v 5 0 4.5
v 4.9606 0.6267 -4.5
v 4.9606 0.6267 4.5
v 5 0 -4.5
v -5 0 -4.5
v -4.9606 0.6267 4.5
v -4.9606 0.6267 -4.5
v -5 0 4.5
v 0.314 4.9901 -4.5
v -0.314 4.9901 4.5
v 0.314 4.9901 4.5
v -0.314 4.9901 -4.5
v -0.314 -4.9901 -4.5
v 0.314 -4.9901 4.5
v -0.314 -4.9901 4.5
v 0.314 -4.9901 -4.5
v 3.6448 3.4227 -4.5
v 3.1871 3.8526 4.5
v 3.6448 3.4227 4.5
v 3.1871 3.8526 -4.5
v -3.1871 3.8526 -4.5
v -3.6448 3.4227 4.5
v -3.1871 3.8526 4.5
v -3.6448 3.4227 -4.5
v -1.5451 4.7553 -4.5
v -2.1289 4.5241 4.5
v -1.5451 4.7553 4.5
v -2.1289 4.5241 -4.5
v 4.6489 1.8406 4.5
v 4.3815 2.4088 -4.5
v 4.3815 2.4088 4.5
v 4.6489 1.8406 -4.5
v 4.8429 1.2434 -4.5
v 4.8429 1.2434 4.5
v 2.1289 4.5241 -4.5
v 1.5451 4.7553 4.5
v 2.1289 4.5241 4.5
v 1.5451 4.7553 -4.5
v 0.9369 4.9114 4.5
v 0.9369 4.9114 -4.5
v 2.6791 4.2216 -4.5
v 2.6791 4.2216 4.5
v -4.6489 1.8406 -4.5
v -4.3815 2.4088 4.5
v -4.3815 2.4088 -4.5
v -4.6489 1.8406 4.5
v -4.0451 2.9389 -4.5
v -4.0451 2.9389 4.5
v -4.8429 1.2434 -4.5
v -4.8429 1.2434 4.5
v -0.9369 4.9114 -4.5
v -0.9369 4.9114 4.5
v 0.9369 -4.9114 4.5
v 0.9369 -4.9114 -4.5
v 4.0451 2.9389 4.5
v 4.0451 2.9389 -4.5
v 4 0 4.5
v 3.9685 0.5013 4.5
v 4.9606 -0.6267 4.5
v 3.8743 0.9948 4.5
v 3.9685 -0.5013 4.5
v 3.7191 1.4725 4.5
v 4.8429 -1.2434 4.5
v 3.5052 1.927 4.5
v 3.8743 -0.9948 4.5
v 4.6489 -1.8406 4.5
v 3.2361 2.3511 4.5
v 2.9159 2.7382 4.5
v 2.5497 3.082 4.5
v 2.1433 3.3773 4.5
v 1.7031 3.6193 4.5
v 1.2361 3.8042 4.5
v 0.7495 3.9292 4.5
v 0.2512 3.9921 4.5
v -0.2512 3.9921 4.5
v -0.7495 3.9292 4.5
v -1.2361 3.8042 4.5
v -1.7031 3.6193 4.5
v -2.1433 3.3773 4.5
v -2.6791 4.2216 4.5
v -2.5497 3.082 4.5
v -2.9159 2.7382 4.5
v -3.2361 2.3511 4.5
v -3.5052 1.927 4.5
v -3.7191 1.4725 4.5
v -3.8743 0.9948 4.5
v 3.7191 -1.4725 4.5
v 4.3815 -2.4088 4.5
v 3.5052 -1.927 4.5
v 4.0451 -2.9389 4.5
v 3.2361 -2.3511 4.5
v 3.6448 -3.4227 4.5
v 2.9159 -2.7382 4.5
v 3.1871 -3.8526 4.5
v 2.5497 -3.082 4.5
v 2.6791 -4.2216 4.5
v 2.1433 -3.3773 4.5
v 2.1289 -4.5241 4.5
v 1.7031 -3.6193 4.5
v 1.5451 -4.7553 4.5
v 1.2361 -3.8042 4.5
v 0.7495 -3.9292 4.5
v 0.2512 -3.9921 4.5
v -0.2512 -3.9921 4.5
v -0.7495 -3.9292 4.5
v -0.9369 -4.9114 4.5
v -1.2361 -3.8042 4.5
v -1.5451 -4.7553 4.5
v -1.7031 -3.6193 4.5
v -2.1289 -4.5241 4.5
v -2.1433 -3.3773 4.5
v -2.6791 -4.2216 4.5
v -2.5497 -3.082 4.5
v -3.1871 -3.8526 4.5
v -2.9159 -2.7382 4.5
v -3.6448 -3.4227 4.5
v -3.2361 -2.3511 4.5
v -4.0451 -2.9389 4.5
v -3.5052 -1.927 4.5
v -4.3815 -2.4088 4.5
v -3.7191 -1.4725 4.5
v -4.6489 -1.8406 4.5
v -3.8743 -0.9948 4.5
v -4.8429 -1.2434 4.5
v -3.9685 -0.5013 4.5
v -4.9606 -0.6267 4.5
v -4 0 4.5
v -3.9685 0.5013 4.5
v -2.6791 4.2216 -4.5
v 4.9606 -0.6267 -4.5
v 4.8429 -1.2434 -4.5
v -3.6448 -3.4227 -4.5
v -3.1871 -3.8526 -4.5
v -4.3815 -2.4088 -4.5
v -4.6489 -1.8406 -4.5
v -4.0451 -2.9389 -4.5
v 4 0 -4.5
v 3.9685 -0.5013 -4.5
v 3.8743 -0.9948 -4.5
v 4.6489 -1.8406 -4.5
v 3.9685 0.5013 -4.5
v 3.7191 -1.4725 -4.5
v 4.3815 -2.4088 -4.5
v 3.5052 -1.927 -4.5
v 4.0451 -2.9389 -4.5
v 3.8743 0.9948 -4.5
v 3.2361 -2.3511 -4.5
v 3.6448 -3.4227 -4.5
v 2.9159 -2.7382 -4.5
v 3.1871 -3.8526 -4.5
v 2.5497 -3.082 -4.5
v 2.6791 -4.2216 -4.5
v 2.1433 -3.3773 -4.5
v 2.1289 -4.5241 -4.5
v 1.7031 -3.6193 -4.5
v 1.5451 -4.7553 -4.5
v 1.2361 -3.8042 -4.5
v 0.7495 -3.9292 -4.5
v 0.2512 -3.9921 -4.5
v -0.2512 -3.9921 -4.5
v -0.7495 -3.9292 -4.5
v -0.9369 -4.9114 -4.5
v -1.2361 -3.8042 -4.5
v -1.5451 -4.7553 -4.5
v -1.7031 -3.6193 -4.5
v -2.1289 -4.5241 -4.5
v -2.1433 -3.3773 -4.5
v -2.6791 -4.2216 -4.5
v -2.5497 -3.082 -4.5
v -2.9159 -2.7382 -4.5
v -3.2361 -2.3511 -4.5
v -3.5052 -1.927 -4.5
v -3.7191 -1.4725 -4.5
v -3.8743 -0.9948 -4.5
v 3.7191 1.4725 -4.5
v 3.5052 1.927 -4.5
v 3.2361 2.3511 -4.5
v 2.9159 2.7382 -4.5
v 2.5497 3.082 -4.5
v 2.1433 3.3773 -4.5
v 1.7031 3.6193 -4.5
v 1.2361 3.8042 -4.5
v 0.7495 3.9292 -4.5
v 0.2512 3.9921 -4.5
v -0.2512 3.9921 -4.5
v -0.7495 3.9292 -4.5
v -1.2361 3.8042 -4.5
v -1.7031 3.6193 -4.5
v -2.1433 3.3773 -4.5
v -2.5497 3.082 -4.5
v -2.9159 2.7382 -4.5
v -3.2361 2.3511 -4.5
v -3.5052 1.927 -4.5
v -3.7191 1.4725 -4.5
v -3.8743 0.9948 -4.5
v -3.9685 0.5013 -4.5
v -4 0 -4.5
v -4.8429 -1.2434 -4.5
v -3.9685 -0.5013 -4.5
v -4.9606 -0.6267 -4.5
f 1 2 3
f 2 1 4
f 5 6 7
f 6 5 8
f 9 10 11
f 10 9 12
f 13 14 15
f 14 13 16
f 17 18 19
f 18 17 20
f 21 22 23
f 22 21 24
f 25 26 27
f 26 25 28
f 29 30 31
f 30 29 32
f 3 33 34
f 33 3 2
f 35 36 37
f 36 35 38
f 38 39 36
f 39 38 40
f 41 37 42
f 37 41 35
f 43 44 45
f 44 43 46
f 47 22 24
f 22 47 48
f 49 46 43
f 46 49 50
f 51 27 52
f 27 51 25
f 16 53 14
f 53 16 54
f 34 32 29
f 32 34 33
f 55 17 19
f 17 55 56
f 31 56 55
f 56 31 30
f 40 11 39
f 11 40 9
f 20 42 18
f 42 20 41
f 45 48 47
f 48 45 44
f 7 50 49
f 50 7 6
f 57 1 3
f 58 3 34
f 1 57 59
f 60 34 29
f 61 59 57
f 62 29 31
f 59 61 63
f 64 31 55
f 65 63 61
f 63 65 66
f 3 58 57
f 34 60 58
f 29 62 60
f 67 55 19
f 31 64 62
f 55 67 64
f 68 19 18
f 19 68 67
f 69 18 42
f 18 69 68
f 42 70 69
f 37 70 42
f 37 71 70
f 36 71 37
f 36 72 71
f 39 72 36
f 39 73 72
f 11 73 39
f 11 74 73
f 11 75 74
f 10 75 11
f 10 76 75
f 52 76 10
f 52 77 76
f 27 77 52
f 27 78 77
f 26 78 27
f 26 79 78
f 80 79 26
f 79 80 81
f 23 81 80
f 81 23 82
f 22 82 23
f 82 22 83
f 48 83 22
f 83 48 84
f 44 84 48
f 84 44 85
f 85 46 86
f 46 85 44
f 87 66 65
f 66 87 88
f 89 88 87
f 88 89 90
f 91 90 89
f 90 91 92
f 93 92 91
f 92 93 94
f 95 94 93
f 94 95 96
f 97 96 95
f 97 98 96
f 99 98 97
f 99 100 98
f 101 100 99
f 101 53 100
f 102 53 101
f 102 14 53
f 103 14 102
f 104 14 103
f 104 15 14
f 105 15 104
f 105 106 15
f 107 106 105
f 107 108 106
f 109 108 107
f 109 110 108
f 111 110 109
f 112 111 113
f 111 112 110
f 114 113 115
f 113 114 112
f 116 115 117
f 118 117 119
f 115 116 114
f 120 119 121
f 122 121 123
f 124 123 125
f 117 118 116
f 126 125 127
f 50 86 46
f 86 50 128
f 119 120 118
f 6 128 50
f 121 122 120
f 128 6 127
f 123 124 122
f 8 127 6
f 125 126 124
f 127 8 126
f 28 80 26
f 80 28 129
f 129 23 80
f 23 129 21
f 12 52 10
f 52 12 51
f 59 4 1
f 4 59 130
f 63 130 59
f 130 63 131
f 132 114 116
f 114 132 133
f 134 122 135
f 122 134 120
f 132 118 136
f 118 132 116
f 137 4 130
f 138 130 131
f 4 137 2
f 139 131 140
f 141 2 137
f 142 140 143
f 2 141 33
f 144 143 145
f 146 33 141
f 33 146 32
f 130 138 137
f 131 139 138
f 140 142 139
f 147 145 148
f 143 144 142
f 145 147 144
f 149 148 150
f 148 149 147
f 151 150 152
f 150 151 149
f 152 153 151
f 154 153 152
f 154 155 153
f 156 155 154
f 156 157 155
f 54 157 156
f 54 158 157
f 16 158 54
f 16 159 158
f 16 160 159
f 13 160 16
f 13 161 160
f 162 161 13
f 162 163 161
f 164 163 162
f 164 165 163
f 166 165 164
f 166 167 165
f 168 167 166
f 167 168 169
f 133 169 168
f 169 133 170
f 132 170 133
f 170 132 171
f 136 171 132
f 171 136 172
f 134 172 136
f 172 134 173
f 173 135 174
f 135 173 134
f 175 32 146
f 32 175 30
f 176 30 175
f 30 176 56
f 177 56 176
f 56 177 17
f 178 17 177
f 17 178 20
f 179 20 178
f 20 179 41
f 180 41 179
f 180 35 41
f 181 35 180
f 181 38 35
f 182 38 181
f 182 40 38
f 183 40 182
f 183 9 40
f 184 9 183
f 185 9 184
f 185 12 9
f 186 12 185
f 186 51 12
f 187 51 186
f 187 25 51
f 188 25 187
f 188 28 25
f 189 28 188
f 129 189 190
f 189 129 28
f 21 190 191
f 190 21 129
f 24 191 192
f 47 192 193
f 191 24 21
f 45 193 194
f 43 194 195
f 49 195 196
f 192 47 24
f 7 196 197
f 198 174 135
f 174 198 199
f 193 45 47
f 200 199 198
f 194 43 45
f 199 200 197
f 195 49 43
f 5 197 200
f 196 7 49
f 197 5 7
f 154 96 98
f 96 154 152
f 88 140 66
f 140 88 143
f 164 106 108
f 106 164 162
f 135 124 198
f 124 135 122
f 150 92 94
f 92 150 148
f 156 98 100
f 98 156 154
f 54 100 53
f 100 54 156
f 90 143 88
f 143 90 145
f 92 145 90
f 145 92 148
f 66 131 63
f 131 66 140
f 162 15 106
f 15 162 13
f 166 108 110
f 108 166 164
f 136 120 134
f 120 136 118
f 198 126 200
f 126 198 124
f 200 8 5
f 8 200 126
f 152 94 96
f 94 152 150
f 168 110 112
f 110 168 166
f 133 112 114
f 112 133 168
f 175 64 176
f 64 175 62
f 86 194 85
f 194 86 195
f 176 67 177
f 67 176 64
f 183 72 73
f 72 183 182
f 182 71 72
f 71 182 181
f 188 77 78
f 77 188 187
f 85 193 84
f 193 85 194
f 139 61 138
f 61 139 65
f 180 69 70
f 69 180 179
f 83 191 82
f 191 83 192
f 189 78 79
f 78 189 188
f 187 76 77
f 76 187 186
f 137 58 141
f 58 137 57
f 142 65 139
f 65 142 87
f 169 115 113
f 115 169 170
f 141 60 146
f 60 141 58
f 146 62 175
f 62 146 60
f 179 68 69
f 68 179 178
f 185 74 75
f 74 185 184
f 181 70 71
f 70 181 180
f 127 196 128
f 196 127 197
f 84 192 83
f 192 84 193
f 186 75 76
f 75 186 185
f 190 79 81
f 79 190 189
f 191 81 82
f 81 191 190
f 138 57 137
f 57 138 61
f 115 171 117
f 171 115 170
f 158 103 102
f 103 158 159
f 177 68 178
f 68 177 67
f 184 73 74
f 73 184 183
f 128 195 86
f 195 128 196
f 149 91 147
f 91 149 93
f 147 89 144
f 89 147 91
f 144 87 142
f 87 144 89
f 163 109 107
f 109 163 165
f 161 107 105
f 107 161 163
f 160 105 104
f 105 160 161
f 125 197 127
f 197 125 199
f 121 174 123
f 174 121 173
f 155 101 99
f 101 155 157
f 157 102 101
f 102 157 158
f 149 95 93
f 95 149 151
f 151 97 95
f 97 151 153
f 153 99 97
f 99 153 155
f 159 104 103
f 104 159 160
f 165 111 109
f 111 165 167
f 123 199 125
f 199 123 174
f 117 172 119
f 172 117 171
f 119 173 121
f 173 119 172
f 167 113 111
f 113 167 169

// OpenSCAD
$fn = 50;


difference() {
	union() {
		translate(v = [0, 0, -4.5000000000]) {
			cylinder(h = 9, r = 5.0000000000);
		}
	}
	union() {
		translate(v = [0, 0, -100.0000000000]) {
			cylinder(h = 200, r = 4);
		}
	}
}
